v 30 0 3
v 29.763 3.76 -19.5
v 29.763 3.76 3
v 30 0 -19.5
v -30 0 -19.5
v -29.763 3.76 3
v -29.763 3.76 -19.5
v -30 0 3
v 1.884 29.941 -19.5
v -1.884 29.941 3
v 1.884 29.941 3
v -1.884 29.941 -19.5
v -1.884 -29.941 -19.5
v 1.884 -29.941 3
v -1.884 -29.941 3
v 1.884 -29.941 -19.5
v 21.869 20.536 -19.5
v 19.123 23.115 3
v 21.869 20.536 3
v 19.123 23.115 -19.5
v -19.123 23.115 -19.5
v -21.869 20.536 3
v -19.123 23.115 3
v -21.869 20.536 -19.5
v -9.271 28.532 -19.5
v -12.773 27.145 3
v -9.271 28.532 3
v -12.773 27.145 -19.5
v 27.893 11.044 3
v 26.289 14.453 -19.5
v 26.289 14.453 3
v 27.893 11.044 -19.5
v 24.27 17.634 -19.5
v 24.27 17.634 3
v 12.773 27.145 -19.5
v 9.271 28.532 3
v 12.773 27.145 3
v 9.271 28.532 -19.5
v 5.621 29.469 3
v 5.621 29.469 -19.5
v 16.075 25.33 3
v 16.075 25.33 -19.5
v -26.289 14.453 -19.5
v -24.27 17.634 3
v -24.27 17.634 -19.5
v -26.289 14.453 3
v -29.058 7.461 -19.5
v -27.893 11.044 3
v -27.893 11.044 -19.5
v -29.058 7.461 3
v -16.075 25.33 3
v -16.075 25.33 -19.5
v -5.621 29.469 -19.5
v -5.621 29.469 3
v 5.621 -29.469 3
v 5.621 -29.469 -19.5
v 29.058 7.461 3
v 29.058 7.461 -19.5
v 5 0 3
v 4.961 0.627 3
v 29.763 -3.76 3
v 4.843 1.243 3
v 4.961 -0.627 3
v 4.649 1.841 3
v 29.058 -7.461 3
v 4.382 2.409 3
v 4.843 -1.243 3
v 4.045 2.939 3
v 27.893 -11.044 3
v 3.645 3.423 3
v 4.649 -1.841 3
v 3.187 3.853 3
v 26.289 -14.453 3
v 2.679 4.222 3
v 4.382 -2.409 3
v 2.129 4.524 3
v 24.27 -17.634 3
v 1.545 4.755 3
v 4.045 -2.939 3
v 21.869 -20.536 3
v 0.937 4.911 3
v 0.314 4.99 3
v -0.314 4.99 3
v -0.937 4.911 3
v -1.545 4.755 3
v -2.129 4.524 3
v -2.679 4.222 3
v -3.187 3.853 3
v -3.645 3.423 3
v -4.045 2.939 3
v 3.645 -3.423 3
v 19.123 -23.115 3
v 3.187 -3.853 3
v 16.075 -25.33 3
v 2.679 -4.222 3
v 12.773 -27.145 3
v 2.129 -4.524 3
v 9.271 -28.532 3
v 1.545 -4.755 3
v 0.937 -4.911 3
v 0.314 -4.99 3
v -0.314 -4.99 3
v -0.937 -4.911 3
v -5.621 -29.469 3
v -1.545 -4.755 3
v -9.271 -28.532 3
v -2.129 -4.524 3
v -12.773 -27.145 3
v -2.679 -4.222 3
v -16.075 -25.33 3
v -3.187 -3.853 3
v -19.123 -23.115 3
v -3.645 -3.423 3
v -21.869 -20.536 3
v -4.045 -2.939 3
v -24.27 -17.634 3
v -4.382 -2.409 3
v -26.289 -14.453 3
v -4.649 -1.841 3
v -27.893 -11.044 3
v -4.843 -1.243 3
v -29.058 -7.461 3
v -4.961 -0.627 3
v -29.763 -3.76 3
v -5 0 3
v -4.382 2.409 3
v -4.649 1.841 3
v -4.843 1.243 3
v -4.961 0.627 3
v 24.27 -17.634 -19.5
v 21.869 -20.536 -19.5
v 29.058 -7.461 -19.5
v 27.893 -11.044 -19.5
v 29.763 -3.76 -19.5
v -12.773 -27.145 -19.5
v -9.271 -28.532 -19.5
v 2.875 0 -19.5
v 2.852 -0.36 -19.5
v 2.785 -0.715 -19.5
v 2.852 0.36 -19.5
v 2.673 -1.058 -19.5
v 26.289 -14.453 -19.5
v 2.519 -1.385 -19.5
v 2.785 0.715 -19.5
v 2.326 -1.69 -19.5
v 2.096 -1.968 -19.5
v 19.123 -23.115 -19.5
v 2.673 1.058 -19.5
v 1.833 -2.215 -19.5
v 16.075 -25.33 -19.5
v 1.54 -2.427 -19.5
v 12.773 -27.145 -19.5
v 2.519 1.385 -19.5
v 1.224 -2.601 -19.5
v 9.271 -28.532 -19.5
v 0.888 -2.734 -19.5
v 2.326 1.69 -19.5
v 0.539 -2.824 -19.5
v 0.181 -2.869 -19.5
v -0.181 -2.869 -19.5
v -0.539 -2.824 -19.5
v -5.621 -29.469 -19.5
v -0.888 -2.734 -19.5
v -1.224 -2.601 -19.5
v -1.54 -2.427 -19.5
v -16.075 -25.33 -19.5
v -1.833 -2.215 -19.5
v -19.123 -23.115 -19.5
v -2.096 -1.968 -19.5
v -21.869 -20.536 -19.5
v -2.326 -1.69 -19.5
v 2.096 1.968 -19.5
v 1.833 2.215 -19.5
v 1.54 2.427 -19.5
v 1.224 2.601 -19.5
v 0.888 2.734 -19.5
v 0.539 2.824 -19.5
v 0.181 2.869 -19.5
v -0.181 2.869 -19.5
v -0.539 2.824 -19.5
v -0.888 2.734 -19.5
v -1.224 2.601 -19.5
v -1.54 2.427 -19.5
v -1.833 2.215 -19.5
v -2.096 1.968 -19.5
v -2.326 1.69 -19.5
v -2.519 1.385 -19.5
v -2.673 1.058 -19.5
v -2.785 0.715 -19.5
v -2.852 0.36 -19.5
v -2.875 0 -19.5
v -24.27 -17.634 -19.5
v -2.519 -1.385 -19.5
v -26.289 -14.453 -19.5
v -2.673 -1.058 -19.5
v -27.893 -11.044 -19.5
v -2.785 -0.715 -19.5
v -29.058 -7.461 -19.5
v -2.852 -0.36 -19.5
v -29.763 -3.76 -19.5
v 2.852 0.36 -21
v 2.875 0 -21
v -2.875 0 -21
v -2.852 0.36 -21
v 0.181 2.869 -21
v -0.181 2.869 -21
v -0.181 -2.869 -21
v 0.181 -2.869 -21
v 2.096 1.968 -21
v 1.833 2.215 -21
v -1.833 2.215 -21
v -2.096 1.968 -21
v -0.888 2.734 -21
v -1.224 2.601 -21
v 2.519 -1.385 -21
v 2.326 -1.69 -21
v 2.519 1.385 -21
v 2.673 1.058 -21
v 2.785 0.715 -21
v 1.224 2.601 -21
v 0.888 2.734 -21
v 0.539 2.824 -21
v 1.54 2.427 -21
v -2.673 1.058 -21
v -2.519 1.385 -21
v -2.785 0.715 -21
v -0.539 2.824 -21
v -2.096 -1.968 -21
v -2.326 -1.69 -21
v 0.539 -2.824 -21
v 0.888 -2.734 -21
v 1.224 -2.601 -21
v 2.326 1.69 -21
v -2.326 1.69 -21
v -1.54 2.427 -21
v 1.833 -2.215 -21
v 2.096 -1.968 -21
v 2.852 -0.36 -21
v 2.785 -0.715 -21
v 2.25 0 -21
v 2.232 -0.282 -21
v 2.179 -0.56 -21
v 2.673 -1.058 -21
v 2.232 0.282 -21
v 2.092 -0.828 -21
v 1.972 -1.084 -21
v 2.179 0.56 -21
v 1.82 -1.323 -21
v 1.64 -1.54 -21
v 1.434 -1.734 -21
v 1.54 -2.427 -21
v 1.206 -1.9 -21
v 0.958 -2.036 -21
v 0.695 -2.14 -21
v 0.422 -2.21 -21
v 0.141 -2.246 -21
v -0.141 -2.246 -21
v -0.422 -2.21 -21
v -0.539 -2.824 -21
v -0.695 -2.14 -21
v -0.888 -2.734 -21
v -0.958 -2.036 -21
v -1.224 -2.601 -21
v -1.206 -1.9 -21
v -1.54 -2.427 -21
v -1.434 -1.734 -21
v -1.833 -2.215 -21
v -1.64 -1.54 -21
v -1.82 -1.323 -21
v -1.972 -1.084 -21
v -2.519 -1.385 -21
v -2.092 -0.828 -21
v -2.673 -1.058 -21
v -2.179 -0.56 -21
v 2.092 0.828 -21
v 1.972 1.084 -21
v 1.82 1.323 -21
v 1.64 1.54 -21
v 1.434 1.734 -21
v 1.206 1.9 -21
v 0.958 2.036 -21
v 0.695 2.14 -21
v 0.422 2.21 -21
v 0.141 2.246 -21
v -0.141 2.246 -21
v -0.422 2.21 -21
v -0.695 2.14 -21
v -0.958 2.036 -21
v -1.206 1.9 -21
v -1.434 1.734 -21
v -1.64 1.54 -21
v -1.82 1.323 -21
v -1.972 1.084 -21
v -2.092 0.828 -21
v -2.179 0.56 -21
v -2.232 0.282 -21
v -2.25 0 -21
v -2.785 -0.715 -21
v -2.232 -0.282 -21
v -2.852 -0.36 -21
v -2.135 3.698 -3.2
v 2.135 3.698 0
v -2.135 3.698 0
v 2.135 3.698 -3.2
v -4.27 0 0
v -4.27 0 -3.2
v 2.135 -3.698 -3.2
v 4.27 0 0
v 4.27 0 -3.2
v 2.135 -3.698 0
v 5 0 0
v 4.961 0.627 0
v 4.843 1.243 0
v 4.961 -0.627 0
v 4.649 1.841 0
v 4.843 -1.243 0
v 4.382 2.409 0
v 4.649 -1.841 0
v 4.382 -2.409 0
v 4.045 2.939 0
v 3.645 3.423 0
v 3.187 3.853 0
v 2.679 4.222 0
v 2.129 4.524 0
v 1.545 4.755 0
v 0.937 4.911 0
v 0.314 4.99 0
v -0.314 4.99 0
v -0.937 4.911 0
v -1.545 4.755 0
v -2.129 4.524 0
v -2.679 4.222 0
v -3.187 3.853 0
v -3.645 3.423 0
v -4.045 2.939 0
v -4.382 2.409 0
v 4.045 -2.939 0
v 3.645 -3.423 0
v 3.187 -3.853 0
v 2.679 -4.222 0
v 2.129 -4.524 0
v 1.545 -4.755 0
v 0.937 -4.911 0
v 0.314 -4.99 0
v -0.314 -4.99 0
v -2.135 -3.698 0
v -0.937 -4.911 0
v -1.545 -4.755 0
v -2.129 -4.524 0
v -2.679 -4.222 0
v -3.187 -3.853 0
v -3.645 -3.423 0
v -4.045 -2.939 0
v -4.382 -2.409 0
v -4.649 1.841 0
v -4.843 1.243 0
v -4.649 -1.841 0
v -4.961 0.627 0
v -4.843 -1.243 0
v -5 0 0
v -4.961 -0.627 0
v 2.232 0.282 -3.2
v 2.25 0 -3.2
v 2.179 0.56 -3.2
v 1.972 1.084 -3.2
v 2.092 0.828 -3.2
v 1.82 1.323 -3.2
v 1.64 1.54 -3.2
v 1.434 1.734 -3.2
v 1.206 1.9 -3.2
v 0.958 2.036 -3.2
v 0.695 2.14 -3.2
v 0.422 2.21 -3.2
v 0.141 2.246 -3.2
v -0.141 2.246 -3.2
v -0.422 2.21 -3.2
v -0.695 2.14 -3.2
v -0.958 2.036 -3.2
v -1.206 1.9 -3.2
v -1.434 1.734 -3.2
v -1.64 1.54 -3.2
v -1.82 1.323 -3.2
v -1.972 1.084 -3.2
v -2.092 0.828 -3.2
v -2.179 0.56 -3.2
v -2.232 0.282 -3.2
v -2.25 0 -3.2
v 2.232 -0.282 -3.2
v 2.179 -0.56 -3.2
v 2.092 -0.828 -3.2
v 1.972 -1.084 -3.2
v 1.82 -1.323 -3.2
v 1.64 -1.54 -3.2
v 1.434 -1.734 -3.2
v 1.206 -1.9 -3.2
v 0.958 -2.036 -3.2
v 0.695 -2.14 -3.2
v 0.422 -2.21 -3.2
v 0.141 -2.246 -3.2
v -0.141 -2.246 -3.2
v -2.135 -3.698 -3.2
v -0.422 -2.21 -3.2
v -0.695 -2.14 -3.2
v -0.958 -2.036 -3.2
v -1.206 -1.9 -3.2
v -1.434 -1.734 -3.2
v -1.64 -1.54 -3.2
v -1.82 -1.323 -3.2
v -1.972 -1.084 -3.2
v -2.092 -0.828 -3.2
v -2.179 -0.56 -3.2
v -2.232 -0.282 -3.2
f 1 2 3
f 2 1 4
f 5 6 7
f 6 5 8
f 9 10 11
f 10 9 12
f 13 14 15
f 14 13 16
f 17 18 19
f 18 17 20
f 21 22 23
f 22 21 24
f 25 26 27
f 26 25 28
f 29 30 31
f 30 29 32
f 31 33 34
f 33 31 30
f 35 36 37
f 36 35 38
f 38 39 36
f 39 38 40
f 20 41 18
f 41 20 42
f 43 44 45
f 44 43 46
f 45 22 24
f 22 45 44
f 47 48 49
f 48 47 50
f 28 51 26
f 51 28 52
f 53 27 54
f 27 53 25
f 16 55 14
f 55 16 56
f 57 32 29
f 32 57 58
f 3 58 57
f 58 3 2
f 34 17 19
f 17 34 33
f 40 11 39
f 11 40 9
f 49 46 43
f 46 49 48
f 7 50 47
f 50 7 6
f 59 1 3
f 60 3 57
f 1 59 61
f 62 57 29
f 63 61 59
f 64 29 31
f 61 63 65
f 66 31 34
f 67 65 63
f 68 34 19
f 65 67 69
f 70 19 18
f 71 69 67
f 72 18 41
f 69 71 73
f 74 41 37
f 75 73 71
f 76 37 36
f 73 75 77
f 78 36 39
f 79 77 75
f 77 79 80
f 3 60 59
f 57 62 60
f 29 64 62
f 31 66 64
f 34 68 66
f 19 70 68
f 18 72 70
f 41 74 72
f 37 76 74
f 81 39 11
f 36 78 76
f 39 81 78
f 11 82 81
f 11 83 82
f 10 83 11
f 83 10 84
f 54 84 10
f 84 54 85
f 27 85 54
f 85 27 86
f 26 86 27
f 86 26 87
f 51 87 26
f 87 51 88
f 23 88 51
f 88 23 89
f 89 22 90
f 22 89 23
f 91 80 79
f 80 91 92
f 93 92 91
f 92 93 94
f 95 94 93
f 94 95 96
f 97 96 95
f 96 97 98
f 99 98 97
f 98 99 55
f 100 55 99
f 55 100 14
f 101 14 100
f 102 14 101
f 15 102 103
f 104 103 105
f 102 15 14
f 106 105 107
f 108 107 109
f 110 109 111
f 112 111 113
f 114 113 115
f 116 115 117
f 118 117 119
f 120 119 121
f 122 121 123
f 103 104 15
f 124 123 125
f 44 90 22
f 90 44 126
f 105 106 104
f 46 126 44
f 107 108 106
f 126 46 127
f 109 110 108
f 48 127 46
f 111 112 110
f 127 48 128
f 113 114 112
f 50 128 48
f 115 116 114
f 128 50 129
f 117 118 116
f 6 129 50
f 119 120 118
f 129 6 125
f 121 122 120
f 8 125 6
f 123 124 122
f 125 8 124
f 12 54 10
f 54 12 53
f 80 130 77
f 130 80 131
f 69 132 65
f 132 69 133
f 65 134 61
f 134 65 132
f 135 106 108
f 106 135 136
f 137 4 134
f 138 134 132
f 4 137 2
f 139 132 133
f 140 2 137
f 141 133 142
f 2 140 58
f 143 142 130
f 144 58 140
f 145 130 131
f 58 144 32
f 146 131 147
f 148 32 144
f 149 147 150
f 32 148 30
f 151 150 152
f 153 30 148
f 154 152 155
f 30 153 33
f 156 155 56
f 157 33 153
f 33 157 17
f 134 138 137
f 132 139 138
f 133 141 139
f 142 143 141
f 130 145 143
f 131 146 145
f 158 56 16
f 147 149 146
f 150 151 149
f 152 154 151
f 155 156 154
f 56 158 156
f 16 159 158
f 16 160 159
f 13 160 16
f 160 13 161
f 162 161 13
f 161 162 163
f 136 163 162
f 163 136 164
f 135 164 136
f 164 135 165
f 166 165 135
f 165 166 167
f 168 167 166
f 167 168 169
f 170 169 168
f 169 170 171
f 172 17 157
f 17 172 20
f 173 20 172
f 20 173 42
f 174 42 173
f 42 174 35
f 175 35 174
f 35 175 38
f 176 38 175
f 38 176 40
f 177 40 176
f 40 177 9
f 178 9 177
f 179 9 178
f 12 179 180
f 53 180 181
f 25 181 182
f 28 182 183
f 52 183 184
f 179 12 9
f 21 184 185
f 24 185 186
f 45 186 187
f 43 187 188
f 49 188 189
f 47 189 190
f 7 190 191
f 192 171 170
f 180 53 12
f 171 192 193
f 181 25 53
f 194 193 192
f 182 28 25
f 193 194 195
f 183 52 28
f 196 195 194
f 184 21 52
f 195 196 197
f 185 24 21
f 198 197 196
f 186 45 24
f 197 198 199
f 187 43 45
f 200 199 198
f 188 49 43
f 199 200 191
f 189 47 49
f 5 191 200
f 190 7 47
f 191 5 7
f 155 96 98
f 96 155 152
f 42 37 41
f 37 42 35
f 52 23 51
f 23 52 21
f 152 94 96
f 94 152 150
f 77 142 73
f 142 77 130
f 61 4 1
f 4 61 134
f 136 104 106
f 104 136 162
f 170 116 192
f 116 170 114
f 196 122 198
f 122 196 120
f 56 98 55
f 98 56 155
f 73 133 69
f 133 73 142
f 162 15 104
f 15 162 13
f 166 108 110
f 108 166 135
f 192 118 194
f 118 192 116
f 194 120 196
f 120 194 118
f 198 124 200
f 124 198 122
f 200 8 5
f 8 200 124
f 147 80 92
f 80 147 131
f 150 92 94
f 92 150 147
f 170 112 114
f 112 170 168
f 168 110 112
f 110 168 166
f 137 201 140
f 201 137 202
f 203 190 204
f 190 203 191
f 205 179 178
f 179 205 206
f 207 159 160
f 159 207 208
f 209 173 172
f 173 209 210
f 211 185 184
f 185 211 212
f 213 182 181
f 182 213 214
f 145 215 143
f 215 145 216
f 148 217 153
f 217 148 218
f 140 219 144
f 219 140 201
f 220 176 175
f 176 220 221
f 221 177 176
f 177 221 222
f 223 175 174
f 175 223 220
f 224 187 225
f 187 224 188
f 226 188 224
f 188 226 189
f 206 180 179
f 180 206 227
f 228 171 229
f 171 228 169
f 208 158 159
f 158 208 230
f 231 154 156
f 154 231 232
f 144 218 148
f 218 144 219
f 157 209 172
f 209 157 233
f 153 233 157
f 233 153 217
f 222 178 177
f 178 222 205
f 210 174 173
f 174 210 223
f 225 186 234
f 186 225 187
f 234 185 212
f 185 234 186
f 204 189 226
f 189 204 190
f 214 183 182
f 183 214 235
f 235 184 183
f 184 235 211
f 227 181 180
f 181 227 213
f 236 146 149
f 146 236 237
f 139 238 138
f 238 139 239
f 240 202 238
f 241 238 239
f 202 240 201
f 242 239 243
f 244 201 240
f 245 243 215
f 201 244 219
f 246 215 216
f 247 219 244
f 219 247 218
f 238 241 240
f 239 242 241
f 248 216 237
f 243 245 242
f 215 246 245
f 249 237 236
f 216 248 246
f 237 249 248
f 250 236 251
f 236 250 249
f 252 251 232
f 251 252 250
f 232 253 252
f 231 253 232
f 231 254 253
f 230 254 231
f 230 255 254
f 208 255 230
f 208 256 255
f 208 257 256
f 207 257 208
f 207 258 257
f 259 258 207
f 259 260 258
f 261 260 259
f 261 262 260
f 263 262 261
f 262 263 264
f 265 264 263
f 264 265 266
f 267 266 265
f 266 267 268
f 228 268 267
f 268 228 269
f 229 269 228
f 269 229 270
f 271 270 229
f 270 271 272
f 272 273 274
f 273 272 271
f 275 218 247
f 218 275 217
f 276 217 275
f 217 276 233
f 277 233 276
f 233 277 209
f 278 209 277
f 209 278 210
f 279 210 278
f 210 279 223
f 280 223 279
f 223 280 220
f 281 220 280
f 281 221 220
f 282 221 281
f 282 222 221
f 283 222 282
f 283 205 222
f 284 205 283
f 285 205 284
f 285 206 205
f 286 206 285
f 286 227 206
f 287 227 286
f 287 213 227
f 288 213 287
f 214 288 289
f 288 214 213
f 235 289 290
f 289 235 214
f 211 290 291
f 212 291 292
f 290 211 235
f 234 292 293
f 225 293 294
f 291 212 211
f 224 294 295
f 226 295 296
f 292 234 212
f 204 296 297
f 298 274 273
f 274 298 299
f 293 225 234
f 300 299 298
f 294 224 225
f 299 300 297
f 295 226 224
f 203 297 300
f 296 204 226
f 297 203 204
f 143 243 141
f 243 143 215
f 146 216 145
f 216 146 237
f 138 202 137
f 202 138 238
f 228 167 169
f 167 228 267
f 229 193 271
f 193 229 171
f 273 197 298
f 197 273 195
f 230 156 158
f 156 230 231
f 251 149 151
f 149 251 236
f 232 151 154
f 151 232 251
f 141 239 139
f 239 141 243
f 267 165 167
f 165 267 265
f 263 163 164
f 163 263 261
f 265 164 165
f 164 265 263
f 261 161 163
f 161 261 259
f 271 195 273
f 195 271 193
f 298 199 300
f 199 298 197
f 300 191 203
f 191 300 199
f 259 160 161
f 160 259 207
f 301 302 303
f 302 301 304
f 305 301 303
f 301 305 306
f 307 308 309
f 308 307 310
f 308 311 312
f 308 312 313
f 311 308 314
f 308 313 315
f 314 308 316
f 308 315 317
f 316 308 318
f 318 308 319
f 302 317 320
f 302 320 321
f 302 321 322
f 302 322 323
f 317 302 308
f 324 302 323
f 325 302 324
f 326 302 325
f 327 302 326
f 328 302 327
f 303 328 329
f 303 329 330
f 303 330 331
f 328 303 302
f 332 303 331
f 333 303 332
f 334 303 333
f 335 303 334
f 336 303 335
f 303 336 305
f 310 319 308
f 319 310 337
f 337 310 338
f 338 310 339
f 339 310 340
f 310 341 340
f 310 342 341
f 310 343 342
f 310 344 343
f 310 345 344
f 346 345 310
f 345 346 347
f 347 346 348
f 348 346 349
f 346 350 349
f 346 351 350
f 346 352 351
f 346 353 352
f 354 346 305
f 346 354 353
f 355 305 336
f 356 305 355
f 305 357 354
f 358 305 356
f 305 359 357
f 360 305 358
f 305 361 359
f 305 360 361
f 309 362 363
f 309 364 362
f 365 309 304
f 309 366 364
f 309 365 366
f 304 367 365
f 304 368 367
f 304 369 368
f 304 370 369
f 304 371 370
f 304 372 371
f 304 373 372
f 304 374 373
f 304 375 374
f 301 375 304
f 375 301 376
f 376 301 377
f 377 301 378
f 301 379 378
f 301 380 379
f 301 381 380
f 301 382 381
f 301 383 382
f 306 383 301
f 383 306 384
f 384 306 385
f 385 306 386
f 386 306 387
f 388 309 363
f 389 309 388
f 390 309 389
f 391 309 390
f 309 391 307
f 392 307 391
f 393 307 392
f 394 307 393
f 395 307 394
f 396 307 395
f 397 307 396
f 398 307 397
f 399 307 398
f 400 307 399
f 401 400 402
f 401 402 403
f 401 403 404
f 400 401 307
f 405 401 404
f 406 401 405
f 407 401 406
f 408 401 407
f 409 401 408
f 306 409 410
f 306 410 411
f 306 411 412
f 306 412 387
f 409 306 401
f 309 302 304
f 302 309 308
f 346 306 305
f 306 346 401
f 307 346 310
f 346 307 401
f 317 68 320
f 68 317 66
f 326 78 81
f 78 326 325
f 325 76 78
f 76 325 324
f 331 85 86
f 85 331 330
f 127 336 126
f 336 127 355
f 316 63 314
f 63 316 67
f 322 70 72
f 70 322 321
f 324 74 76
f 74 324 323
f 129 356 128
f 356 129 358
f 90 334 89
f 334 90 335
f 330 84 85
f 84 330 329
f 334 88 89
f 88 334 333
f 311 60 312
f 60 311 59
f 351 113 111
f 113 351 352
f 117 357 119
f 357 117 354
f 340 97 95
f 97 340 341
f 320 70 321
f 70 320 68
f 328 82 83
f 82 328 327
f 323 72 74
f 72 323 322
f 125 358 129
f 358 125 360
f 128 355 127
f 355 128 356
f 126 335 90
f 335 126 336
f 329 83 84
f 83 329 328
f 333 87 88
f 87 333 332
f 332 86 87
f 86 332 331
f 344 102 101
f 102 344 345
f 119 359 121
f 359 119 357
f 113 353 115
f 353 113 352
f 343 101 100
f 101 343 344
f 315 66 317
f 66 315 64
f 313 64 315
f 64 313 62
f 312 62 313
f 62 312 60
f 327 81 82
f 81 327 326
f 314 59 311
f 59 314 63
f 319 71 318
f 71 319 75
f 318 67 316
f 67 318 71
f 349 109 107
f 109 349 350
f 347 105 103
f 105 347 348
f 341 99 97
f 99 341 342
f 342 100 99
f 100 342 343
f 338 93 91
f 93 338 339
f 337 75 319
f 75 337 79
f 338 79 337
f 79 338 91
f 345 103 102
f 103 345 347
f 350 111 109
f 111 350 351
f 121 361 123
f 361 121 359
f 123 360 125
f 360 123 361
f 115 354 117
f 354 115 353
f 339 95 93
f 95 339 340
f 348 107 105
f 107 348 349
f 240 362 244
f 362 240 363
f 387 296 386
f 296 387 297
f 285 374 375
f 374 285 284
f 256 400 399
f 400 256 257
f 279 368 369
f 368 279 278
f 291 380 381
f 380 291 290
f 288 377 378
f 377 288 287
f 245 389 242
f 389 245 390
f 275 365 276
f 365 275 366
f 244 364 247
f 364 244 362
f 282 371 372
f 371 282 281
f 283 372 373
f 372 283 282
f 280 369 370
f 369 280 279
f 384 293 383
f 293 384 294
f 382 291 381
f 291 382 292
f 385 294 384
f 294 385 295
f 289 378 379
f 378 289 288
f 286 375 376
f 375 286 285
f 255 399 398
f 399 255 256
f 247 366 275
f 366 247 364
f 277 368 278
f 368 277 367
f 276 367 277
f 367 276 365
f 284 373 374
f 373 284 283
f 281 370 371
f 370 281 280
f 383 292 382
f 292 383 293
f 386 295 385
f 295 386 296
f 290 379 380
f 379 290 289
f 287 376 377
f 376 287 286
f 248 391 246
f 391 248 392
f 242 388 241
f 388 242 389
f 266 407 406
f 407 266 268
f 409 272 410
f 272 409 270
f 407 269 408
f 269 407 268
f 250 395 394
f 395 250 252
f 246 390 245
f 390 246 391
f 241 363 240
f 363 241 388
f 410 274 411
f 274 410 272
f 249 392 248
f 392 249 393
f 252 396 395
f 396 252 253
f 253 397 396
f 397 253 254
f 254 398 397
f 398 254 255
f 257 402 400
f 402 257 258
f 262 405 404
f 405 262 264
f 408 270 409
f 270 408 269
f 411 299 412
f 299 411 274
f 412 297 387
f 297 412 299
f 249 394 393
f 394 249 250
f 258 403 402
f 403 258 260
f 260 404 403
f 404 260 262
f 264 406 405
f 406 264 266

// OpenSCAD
$fn = 50;

difference() {
	union() {
		translate(v = [0, 0, -19.5]) {
			cylinder(h = 22.5, r = 30.0);
		}
		#translate(v = [0, 0, -21.0]) {
			cylinder(h = 21, r = 2.875);
		}
	}
	union() {
		translate(v = [0, 0, 0]) {
			rotate(a = [0, 0, 0]) {
				difference() {
					union() {
						translate(v = [0, 0, -3.2]) {
							linear_extrude(height = 3.2) {
								polygon(points = [[4.2698, 0.0], [2.1349000000000005, 3.697755269078796], [-2.134899999999999, 3.6977552690787965], [-4.2698, 5.228996902999369e-16], [-2.134900000000002, -3.6977552690787956], [2.1348999999999974, -3.697755269078798]]);
							}
						}
					}
					union();
				}
			}
		}
		#cylinder(h = 3, r = 5.0);
		#translate(v = [0, 0, -100.0]) {
			cylinder(h = 200, r = 2.25);
		}
	}
}
